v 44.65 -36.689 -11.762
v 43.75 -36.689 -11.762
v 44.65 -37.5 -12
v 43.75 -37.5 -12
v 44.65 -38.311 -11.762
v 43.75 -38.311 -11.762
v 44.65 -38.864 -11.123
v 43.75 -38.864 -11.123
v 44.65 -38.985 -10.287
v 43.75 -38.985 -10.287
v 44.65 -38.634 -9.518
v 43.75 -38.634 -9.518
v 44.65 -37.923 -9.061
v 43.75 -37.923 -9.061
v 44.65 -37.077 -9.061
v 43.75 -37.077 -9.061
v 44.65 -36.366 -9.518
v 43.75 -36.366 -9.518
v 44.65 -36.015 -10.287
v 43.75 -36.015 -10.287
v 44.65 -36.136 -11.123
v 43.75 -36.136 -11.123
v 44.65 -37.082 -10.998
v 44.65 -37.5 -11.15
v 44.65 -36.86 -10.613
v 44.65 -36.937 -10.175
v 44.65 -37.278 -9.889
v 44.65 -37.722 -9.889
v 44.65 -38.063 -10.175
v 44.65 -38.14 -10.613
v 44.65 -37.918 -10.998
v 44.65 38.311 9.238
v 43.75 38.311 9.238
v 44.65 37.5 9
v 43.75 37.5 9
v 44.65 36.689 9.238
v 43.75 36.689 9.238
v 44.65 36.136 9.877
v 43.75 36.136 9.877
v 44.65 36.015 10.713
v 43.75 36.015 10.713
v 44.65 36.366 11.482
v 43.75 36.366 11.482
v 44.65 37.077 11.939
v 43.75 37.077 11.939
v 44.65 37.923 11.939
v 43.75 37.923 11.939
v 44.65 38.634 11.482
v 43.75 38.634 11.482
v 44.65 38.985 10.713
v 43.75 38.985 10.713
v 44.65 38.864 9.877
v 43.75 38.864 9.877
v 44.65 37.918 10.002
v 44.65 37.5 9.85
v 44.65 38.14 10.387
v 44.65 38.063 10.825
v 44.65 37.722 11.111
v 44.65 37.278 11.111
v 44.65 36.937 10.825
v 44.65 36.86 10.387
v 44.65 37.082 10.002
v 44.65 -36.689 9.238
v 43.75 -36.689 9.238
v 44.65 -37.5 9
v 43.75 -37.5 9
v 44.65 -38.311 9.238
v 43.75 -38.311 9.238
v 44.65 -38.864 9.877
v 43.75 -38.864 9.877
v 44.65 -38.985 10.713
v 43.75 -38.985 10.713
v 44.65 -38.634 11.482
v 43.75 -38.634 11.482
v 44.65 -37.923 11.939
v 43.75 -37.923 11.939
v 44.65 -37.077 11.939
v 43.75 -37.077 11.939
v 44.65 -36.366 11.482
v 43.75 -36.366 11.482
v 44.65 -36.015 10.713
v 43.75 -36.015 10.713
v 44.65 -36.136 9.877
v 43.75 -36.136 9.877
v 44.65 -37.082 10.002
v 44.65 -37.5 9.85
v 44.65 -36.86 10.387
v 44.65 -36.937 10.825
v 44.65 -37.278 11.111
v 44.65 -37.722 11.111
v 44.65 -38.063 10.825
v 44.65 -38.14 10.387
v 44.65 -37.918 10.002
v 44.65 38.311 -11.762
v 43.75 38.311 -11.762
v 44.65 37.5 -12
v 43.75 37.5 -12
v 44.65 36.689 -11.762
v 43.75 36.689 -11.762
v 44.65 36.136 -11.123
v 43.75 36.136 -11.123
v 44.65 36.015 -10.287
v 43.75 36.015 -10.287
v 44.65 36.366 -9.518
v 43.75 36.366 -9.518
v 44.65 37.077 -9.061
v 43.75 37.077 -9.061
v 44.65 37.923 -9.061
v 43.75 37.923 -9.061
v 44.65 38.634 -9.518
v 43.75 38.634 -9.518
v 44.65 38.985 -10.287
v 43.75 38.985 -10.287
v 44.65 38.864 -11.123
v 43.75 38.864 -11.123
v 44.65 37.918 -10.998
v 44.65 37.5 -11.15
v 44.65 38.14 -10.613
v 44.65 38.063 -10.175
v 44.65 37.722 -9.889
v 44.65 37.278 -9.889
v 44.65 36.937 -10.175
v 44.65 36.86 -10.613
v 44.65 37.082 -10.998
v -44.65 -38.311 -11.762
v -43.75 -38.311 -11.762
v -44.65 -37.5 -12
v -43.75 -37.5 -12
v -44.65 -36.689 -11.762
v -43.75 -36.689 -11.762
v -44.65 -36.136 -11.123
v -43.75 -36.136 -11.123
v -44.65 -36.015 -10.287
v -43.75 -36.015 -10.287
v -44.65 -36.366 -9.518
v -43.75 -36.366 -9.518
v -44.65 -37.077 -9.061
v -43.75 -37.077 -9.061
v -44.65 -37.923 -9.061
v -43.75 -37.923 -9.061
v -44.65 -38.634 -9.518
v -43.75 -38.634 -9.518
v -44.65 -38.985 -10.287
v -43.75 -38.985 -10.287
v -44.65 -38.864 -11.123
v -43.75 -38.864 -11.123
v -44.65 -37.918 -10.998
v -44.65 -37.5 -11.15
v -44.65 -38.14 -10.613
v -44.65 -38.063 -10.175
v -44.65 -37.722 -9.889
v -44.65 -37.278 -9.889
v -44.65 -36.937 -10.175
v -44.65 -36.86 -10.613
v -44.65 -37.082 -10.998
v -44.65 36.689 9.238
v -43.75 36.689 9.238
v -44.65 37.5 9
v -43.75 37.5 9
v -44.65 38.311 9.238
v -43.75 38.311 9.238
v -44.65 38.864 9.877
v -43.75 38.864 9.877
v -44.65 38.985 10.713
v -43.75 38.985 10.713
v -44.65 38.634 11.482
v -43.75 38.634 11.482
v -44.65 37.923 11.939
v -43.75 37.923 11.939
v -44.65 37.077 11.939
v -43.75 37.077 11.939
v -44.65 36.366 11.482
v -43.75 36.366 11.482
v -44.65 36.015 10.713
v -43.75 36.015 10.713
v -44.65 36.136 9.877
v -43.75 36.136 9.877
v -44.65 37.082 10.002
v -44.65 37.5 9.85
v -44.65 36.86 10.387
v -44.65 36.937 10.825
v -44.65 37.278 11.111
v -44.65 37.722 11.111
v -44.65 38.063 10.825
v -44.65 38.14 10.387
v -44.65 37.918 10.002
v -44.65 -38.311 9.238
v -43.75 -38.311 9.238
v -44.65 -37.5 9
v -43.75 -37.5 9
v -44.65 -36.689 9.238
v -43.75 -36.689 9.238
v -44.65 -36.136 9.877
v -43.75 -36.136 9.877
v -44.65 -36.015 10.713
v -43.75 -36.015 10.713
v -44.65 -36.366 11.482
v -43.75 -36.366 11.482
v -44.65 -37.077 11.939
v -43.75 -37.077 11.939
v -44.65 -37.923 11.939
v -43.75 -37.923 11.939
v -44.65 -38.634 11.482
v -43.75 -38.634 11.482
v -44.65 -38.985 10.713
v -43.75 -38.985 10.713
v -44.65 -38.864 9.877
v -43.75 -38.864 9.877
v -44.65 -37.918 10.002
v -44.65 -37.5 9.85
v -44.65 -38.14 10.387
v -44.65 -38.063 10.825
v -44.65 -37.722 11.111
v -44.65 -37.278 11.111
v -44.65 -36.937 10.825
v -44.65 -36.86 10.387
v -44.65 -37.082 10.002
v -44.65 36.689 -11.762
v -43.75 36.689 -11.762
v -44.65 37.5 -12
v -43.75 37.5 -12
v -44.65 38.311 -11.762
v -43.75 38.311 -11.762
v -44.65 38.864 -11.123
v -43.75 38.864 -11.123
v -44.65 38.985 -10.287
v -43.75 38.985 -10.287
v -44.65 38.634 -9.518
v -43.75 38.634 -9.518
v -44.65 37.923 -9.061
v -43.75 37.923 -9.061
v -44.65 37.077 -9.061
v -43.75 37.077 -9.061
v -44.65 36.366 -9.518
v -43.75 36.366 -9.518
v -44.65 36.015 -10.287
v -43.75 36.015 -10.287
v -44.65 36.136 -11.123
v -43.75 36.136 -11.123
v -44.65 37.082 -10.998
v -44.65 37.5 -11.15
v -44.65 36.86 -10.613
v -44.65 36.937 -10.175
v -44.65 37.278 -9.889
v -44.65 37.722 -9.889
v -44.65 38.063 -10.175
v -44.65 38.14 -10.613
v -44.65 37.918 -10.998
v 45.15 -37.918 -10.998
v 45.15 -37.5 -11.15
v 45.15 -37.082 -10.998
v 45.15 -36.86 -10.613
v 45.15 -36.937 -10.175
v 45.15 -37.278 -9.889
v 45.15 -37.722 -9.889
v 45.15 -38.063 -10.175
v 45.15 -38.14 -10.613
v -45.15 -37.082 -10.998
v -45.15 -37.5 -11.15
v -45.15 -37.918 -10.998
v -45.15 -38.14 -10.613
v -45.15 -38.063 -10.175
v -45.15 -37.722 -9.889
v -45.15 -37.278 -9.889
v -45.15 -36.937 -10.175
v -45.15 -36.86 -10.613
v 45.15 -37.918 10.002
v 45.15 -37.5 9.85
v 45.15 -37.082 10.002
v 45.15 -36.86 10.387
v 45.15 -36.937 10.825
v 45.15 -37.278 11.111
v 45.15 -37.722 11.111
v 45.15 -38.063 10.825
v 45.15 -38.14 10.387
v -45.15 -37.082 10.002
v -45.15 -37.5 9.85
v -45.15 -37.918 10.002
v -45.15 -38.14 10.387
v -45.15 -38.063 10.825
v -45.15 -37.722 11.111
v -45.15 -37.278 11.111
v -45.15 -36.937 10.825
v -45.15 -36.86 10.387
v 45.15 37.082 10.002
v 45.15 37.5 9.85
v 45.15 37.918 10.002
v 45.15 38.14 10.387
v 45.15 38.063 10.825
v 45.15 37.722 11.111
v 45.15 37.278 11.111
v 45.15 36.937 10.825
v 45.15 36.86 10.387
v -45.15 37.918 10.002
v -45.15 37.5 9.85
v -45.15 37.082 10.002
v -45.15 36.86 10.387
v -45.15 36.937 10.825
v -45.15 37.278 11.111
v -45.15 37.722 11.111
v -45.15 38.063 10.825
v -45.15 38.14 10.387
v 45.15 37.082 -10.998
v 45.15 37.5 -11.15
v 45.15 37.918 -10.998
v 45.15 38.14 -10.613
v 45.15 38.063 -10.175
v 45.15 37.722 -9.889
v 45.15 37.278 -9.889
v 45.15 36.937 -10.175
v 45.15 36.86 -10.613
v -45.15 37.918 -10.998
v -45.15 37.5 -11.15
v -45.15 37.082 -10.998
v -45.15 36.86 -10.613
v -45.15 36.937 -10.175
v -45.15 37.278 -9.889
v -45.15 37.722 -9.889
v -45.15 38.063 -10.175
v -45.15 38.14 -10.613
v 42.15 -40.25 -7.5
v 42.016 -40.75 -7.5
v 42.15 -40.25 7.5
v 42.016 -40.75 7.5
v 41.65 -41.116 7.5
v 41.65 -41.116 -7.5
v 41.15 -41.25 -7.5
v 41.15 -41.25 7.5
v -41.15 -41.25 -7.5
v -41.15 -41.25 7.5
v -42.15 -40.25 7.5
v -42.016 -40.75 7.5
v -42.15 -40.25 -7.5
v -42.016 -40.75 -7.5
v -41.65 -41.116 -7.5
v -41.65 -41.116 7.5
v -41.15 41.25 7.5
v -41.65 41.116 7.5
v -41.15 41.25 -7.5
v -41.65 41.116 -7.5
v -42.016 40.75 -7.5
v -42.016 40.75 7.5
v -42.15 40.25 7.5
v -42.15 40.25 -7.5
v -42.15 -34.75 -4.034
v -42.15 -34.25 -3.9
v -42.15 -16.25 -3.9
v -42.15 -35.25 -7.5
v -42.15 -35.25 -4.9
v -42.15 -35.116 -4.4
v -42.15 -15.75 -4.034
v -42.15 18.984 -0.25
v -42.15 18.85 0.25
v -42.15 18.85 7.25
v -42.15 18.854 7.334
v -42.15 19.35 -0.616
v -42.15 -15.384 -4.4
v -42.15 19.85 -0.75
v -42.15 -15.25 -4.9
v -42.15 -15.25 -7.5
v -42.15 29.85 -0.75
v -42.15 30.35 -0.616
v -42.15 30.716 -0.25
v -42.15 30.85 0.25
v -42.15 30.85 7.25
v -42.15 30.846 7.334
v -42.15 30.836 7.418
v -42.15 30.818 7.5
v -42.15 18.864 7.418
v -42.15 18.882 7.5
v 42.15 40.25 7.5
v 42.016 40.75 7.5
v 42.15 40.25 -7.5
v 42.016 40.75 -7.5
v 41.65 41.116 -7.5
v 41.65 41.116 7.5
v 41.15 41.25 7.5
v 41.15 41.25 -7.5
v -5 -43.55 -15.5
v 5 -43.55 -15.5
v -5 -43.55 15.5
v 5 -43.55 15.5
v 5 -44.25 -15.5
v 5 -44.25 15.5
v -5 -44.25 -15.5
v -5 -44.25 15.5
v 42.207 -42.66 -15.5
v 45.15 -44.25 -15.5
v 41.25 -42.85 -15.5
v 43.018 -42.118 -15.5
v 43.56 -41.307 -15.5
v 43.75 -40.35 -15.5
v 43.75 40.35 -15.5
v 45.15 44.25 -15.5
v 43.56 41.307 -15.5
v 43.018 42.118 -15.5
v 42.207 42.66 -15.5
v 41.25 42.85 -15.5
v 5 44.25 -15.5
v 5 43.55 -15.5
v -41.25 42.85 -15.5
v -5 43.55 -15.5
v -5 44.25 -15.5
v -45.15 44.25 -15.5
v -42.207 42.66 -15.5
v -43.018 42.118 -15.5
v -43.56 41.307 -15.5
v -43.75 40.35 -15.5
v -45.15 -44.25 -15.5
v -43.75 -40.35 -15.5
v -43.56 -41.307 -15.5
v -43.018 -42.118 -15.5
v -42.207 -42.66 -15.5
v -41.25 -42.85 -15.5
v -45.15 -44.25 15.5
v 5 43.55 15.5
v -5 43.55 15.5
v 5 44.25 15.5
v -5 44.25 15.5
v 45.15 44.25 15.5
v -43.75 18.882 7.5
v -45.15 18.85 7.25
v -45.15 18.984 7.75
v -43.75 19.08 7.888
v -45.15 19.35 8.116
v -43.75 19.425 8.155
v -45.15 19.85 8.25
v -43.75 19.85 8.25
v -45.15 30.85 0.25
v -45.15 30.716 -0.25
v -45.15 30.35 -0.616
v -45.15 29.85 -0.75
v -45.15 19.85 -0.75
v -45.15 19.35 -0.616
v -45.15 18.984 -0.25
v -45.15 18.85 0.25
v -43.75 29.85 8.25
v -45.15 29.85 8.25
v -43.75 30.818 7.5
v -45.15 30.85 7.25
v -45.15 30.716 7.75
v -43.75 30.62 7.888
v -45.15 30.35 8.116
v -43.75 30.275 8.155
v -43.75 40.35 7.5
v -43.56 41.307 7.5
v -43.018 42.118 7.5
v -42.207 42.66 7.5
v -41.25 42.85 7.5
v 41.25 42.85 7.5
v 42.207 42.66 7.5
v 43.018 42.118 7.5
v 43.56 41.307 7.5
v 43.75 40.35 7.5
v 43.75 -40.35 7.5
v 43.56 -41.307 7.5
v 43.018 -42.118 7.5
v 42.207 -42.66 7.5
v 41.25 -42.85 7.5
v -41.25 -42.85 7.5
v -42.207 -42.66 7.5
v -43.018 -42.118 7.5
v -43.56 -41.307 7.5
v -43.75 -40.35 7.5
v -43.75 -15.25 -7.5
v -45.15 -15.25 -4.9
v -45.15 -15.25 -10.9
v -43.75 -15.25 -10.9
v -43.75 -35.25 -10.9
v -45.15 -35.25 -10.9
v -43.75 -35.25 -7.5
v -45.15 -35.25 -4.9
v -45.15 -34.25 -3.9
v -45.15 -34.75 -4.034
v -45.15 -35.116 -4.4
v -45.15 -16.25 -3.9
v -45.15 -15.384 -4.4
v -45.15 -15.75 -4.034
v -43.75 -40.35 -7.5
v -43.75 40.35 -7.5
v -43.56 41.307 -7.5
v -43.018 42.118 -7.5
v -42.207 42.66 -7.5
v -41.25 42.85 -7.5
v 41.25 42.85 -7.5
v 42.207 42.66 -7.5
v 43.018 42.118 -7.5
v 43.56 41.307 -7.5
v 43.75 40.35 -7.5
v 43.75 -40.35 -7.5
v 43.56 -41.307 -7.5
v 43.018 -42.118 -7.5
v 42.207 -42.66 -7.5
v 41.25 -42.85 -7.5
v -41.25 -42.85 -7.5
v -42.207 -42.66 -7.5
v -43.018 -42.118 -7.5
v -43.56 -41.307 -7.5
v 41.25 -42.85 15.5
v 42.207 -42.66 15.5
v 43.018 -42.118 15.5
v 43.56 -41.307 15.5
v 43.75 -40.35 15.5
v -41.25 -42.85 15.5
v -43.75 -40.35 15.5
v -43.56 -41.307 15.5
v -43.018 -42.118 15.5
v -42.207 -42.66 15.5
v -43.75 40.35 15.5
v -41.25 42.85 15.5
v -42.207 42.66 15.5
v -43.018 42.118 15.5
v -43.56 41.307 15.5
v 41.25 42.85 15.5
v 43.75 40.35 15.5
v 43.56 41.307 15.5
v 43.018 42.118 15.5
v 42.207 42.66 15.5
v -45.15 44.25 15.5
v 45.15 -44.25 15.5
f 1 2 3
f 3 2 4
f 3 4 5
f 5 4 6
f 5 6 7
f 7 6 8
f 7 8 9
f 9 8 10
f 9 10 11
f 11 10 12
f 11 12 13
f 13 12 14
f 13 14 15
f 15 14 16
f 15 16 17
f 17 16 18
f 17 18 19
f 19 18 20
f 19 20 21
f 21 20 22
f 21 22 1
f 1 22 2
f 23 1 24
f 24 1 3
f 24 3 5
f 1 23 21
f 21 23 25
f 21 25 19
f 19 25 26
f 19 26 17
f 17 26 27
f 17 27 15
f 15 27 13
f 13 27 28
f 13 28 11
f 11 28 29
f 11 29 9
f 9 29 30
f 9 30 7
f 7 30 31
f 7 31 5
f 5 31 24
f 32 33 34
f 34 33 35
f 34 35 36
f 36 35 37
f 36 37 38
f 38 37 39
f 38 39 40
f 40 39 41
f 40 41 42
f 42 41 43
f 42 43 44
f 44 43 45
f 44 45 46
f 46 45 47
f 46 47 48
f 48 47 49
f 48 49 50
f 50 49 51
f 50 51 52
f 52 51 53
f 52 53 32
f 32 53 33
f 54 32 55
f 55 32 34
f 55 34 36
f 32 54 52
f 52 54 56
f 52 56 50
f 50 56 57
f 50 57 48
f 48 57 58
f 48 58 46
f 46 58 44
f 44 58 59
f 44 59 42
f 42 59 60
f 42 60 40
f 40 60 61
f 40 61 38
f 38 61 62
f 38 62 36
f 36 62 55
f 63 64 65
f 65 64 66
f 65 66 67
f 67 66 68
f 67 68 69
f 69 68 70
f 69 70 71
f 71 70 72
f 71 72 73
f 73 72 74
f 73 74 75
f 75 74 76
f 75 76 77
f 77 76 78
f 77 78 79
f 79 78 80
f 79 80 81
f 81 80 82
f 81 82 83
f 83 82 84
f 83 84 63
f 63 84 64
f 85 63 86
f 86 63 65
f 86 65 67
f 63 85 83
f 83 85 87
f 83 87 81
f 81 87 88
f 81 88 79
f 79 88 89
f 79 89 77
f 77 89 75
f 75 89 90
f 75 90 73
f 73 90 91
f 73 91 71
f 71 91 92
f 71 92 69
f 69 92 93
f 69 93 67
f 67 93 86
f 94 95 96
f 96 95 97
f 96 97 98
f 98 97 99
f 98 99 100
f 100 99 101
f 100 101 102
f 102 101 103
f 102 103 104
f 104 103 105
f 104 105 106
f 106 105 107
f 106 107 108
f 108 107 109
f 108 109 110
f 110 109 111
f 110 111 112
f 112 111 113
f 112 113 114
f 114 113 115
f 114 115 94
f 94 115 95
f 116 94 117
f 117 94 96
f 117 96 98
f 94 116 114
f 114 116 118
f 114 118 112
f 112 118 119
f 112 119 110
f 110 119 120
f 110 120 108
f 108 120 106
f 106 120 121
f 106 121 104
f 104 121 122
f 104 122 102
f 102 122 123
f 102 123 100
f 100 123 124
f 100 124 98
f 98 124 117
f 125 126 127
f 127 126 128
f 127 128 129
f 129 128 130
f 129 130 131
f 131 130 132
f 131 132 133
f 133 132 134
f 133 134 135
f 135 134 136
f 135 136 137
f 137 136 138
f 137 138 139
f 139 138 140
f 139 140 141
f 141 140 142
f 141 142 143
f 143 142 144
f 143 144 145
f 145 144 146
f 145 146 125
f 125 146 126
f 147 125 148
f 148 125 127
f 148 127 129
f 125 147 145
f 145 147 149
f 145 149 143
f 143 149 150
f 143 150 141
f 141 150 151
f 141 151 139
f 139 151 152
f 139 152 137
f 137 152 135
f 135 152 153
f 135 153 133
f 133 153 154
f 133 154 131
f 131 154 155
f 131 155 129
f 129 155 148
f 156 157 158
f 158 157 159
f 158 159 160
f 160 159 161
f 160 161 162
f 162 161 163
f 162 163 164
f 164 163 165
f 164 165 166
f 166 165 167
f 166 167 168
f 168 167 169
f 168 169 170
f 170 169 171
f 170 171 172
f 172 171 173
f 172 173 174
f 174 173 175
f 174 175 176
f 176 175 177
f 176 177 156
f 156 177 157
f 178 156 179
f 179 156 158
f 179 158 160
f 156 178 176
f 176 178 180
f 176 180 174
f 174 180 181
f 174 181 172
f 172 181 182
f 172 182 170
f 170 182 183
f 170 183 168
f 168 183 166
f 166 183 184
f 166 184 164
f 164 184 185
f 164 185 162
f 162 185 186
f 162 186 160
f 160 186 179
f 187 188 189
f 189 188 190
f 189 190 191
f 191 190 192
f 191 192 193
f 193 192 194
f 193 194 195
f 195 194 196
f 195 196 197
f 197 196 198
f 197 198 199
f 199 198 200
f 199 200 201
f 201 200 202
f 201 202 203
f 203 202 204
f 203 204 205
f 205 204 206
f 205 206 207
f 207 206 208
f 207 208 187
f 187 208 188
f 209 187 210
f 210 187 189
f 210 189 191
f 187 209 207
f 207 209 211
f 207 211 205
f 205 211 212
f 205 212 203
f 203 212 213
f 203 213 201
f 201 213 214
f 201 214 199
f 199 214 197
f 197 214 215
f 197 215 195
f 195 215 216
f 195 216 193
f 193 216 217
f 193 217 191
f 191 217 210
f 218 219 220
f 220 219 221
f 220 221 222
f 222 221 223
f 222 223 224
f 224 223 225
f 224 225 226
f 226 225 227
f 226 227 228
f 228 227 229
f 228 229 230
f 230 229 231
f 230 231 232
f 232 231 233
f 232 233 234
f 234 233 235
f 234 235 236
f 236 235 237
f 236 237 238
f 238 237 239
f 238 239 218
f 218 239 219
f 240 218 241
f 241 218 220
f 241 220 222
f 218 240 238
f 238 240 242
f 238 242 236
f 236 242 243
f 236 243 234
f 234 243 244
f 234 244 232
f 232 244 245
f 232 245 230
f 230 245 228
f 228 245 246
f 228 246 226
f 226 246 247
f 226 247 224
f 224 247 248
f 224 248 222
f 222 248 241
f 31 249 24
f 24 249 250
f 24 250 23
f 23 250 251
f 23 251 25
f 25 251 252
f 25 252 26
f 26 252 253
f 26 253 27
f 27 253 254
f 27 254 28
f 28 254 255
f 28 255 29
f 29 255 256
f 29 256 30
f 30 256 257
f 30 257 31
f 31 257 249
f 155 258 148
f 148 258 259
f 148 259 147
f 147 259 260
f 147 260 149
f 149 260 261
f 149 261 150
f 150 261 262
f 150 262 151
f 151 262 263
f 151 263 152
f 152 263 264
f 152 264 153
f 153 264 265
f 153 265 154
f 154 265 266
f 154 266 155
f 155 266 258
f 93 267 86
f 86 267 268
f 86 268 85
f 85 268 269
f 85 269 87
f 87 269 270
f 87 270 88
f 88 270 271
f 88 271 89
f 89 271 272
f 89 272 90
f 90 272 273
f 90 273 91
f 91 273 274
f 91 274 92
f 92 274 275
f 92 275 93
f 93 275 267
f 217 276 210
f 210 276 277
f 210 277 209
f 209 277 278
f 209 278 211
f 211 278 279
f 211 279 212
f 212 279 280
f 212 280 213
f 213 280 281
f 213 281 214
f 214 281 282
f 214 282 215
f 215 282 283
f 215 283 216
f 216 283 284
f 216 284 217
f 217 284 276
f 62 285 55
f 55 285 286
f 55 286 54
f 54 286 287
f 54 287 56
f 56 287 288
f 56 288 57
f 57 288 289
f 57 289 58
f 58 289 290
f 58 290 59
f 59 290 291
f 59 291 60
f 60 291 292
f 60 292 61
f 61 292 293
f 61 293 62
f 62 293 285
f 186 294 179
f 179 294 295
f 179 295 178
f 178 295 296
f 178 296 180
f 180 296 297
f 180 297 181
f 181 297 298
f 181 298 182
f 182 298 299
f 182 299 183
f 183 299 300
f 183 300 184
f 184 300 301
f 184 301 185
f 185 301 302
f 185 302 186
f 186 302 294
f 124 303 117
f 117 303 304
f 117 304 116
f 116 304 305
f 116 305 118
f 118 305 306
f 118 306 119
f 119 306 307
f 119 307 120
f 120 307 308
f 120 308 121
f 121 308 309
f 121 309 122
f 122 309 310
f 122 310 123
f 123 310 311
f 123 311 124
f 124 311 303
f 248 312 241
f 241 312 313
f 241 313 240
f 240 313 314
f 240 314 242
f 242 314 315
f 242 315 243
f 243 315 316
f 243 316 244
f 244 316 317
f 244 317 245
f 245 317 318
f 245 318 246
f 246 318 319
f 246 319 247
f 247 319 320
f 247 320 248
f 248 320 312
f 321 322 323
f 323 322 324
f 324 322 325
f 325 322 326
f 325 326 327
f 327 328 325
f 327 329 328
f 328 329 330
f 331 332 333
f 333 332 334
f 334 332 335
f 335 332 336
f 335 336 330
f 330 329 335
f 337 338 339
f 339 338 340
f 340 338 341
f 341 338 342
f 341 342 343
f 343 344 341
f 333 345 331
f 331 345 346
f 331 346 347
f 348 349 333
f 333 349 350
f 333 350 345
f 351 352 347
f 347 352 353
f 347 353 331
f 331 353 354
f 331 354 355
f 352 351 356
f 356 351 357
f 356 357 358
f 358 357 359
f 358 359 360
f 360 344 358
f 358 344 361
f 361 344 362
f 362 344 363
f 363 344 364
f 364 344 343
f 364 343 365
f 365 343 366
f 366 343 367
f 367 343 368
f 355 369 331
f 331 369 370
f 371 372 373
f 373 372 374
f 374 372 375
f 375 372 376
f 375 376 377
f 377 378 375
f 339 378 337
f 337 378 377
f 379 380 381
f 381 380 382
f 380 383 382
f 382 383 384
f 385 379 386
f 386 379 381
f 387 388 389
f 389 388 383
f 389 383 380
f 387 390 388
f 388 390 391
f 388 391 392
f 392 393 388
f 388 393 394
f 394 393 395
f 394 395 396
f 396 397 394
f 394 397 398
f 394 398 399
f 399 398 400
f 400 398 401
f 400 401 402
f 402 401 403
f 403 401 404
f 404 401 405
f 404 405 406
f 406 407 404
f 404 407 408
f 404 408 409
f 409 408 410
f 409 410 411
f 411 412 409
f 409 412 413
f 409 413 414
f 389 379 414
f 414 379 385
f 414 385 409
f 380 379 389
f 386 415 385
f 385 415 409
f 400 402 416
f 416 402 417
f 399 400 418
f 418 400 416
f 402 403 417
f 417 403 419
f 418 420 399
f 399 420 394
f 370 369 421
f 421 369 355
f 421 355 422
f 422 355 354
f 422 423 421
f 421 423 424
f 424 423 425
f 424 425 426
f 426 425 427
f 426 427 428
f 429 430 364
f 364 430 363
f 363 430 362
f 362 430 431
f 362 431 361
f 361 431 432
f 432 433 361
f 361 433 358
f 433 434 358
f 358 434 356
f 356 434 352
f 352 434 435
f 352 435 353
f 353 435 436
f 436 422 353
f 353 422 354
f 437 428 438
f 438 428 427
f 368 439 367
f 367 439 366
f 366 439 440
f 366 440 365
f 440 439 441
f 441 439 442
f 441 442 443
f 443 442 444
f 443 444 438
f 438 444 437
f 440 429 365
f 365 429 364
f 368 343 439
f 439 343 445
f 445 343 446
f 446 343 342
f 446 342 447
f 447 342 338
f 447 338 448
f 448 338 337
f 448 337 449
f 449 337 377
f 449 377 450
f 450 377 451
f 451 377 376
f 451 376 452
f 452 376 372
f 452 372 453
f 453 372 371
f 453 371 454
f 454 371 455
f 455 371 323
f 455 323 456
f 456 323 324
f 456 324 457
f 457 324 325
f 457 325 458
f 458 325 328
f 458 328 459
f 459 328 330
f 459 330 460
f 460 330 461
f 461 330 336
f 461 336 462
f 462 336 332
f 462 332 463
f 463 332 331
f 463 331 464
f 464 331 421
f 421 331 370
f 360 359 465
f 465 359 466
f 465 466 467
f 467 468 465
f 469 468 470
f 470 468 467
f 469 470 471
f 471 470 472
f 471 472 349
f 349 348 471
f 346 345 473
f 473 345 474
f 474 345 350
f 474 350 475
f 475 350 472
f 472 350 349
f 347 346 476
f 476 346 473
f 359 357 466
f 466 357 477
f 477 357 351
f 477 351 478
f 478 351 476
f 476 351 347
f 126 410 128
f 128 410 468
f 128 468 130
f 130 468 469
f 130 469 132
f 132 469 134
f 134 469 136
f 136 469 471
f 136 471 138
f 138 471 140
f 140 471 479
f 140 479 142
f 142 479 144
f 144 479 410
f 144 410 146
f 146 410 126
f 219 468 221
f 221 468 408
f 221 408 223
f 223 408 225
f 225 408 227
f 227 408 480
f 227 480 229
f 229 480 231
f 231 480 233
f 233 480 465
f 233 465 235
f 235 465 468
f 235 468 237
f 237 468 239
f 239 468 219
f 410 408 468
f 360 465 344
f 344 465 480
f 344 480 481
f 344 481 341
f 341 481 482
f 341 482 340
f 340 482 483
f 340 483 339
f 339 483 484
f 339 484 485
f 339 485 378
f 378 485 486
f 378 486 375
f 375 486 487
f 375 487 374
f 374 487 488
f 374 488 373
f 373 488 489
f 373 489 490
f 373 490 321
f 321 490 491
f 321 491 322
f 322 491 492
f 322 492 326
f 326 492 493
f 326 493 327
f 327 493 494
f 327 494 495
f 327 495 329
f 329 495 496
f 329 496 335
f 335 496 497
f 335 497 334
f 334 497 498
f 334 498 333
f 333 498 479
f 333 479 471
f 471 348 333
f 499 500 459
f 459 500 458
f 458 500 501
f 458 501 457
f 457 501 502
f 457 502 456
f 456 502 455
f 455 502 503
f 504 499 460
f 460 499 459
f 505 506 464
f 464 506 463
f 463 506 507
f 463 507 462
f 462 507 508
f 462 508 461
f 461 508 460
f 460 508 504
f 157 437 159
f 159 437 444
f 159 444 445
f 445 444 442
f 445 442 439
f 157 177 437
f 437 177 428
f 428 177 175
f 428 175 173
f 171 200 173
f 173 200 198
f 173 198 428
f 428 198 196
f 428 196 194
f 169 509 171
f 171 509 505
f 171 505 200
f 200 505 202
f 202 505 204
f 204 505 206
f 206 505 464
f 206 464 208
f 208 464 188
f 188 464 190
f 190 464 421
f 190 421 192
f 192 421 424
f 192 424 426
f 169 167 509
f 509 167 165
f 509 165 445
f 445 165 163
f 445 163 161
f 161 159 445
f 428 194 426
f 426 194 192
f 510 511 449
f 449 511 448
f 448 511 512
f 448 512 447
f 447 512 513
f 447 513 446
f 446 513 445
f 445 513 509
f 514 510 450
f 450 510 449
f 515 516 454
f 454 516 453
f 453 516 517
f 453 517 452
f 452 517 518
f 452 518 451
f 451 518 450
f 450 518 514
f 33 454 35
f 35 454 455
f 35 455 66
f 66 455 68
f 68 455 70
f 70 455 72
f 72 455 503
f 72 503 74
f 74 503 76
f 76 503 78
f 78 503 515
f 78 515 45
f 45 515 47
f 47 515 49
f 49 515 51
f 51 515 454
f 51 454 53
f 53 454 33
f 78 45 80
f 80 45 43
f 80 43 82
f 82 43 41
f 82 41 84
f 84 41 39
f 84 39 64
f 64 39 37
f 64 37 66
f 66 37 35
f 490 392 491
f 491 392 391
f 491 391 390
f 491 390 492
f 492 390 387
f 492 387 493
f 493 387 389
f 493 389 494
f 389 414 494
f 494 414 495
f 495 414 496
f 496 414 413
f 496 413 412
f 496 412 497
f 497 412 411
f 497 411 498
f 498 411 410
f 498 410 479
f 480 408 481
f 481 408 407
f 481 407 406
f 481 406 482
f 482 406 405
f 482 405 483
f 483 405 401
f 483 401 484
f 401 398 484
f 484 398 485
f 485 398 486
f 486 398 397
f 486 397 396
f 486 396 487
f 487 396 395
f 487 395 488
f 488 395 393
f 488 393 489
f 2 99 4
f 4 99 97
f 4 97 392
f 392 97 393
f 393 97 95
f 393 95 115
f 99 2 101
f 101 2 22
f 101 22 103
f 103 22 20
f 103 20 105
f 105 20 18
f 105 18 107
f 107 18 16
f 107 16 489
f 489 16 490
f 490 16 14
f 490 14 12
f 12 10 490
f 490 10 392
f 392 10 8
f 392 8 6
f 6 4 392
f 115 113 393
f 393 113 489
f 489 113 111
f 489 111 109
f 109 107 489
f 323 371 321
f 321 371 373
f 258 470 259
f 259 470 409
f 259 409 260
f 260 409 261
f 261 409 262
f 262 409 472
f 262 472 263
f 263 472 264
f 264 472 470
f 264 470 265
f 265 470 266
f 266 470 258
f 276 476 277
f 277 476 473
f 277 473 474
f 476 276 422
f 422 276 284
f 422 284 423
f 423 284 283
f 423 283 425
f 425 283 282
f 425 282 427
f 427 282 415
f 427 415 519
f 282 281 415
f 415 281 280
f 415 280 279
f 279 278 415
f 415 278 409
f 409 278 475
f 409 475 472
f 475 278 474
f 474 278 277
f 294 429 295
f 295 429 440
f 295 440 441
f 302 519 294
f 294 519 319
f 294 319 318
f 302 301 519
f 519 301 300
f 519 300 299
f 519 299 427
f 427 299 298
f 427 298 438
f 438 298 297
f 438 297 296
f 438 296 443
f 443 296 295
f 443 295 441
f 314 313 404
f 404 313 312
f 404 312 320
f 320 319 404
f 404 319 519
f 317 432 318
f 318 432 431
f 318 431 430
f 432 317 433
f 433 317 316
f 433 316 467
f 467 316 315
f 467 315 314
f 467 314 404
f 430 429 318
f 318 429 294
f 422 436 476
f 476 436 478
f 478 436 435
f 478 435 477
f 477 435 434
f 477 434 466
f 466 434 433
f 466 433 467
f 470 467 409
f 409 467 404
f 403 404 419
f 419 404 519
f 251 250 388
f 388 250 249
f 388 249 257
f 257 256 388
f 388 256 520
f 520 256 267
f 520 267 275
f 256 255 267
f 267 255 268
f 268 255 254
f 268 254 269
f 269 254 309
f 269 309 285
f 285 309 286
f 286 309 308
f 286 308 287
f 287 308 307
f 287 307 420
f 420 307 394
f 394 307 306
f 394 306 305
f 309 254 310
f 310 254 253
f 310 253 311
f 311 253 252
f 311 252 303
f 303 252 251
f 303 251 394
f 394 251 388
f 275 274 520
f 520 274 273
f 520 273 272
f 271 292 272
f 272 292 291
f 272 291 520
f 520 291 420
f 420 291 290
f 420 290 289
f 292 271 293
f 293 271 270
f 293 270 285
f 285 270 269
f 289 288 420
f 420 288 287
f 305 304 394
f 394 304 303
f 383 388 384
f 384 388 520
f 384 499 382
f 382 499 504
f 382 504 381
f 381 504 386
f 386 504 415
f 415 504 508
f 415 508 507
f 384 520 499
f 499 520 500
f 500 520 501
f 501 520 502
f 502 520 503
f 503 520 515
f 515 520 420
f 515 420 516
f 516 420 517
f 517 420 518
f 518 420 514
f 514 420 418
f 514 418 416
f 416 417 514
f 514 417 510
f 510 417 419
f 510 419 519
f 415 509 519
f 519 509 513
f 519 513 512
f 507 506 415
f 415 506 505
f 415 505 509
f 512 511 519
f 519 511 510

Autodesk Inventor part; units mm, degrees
ref_plane "YZ Plane" through (0, 0, 0) normal (1, 0, 0) x (0, 1, 0)
ref_plane "XZ Plane" through (0, 0, 0) normal (0, 1, 0) x (-1, 0, 0)
ref_plane "XY Plane" through (0, 0, 0) normal (0, 0, 1) x (1, 0, 0)
sketch "Sketch1" plane through (0, 0, 0) normal (0, 0, 1) x (1, 0, 0)
  line L0 (-45.15, -44.25) -> (45.15, -44.25)
  line L1 (45.15, -44.25) -> (45.15, 44.25)
  line L2 (45.15, 44.25) -> (-45.15, 44.25)
  line L3 (-45.15, 44.25) -> (-45.15, -44.25)
  line L4 (-45.15, -44.25) -> (45.15, 44.25) construction
  line L5 (45.15, -44.25) -> (-45.15, 44.25) construction
  line L6 (42.15, -41.25) -> (-42.15, -41.25)
  line L7 (-42.15, -41.25) -> (-42.15, 41.25)
  line L8 (-42.15, 41.25) -> (42.15, 41.25)
  line L9 (42.15, 41.25) -> (42.15, -41.25)
  line L10 (42.15, -41.25) -> (-42.15, 41.25) construction
  line L11 (-42.15, -41.25) -> (42.15, 41.25) construction
  point P0 (0, 0)
  dimension "d0" = 90.3
  dimension "d1" = 88.5
  dimension "d2" = 84.3
  dimension "d3" = 82.5
extrude "Extrusion1" add sketch "Sketch1" along normal mid plane 31
sketch "Sketch2" plane through (0, 0, -15.5) normal (0, 0, -1) x (-1, 0, 0)
  line L0 (42.15, 41.25) -> (42.15, -41.25) projected
  line L1 (42.15, -41.25) -> (-42.15, -41.25) projected
  line L2 (-42.15, -41.25) -> (-42.15, 41.25) projected
  line L3 (-42.15, 41.25) -> (42.15, 41.25) projected
  line L4 (41.25, -42.85) -> (-41.25, -42.85)
  line L5 (-43.75, -40.35) -> (-43.75, 40.35)
  line L6 (-41.25, 42.85) -> (41.25, 42.85)
  line L7 (43.75, 40.35) -> (43.75, -40.35)
  line L8 (43.75, -42.85) -> (-43.75, 42.85) construction
  line L9 (-43.75, -42.85) -> (43.75, 42.85) construction
  arc A0 (-41.25, 42.85) -> (-43.75, 40.35) centre (-41.25, 40.35) ccw
  arc A1 (-43.75, -40.35) -> (-41.25, -42.85) centre (-41.25, -40.35) ccw
  arc A2 (41.25, -42.85) -> (43.75, -40.35) centre (41.25, -40.35) ccw
  arc A3 (43.75, 40.35) -> (41.25, 42.85) centre (41.25, 40.35) ccw
  point P0 (0, 0)
  dimension "d8" = 2.5
  dimension "d40" = 1.6
  dimension "d41" = 1.6
extrude "Extrusion2" cut sketch "Sketch2" against normal blind 8
mirror "Mirror1" about plane through (0, 0, 0) normal (0, 0, 1) of "Extrusion2"
sketch "Sketch3" plane through (-45.15, -44.25, 15.5) normal (-1, 0, 0) x (0, -1, 0)
  line L0 (0, 0) -> (0, -31) projected
  line L1 (-9, -26.4) -> (-9, -20.4)
  line L2 (-10, -19.4) -> (-28, -19.4)
  line L3 (-29, -20.4) -> (-29, -26.4)
  arc A0 (-28, -19.4) -> (-29, -20.4) centre (-28, -20.4) ccw
  arc A1 (-9, -20.4) -> (-10, -19.4) centre (-10, -20.4) ccw
  line L4 (-29, -26.4) -> (-9, -26.4)
  line L5 (0, -31) -> (-88.5, -31) projected
  point P0 (-44.25, -15.5)
  dimension "d11" = 1
  dimension "d12" = 20
  dimension "d44" = 7
  dimension "d45" = 4.6
  dimension "d47" = 29
extrude "Elect" cut sketch "Sketch3" against normal blind 5
sketch "Sketch5" plane through (-45.15, -44.25, 15.5) normal (-1, 0, 0) x (0, 0, 1)
  line L0 (-31, 88.5) -> (0, 88.5) projected
  line L1 (-31, 0) -> (-31, 88.5) projected
  line L2 (-13.5, 72.7) -> (-10, 72.7)
  line L3 (-10, 72.7) -> (-10, 65.5)
  line L4 (-10, 65.5) -> (-13.5, 65.5)
  line L5 (-13.5, 65.5) -> (-13.5, 72.7)
  point P0 (-15.5, 44.25)
  point P1 (-11.75, 72.7)
  point P2 (-13.5, 69.1)
  dimension "d23" = 3.5
  dimension "d24" = 7.2
  dimension "d42" = 21
  dimension "d43" = 23
extrude "Mini-usb" cut sketch "Sketch5" against normal blind 10
sketch "Sketch7" plane through (-45.15, -44.25, 15.5) normal (-1, 0, 0) x (0, 0, 1)
  line L0 (-13.5, 65.5) -> (-13.5, 72.7) projected
  line L1 (-10, 72.7) -> (-10, 65.5) projected
  line L2 (-10, 65.5) -> (-13.5, 65.5) projected
  line L3 (-10, 72.7) -> (-13.5, 72.7) projected
  line L4 (-10, 72.7) -> (-13.5, 65.5) construction
  line L5 (-13.5, 65.5) -> (-10, 65.5) projected
  line L6 (-10, 65.5) -> (-13.5, 72.7) construction
  line L7 (-15.25, 75.1) -> (-8.25, 75.1)
  line L8 (-7.25, 74.1) -> (-7.25, 64.1)
  line L9 (-8.25, 63.1) -> (-15.25, 63.1)
  line L10 (-16.25, 64.1) -> (-16.25, 74.1)
  line L11 (-16.25, 75.1) -> (-7.25, 63.1) construction
  line L12 (-7.25, 75.1) -> (-16.25, 63.1) construction
  arc A0 (-7.25, 74.1) -> (-8.25, 75.1) centre (-8.25, 74.1) ccw
  arc A1 (-15.25, 75.1) -> (-16.25, 74.1) centre (-15.25, 74.1) ccw
  arc A2 (-16.25, 64.1) -> (-15.25, 63.1) centre (-15.25, 64.1) ccw
  arc A3 (-8.25, 63.1) -> (-7.25, 64.1) centre (-8.25, 64.1) ccw
  point P0 (-15.5, 44.25)
  point P1 (-11.75, 69.1)
  dimension "d35" = 12
  dimension "d36" = 9
  dimension "d37" = 1
extrude "USB" cut sketch "Sketch7" against normal blind 3
sketch "Sketch6" plane through (0, 0, 15.5) normal (0, 0, 1) x (1, 0, 0)
  line L0 (45.15, 44.25) -> (-45.15, 44.25) projected
  line L1 (-5, 44.25) -> (5, 44.25)
  line L2 (5, 44.25) -> (5, 43.55)
  line L3 (5, 43.55) -> (-5, 43.55)
  line L4 (-5, 43.55) -> (-5, 44.25)
  point P0 (0, 0)
  point P1 (0, 43.55)
  dimension "d31" = 10
  dimension "d32" = 0.7
extrude "Decoratie" cut sketch "Sketch6" against normal through all
mirror "Mirror2" about plane through (0, 0, 0) normal (0, 1, 0) of "Decoratie"
fillet "Fillet1" radius 1 4 edges at (42.15, 41.25, 0) (-42.15, 41.25, 0) (-42.15, -41.25, 0) (42.15, -41.25, 0)
sketch "Sketch8" plane through (45.15, -44.25, 15.5) normal (1, 0, 0) x (0, 0, -1)
  circle A0 centre (5, 6.75) radius 0.65
  circle A1 centre (5, 81.75) radius 0.65
  line L0 (0, 0) -> (0, 88.5) projected
  line L1 (5, 6.75) -> (5, 81.75) construction
  circle A2 centre (26, 6.75) radius 0.65
  circle A3 centre (26, 81.75) radius 0.65
  line L2 (31, 88.5) -> (31, 0) projected
  point P0 (15.5, 44.25)
  point P1 (5, 44.25)
  dimension "d49" = 1.3
  dimension "d51" = 75
  dimension "d52" = 5
  dimension "d55" = 5
extrude "Extrusion8" cut sketch "Sketch8" against normal through all
sketch "Sketch9" plane through (-43.75, -40.35, 15.5) normal (1, 0, 0) x (0, 0, -1)
  circle A0 centre (5, 2.85) radius 0.65 projected
  circle A1 centre (26, 2.85) radius 0.65 projected
  circle A2 centre (26, 77.85) radius 0.65 projected
  circle A3 centre (5, 77.85) radius 0.65 projected
  circle A4 centre (5, 77.85) radius 1.5
  circle A5 centre (5, 2.85) radius 1.5
  circle A6 centre (26, 2.85) radius 1.5
  circle A7 centre (26, 77.85) radius 1.5
  point P0 (15.5, 40.35)
  dimension "d58" = 3
  dimension "d59" = 3
  dimension "d60" = 3
  dimension "d61" = 3
extrude "Extrusion9" cut sketch "Sketch9" against normal blind 0.9
mirror "Mirror3" about plane through (0, 0, 0) normal (1, 0, 0) of "Extrusion9"
properties part number "AP-02" material "Q235"
